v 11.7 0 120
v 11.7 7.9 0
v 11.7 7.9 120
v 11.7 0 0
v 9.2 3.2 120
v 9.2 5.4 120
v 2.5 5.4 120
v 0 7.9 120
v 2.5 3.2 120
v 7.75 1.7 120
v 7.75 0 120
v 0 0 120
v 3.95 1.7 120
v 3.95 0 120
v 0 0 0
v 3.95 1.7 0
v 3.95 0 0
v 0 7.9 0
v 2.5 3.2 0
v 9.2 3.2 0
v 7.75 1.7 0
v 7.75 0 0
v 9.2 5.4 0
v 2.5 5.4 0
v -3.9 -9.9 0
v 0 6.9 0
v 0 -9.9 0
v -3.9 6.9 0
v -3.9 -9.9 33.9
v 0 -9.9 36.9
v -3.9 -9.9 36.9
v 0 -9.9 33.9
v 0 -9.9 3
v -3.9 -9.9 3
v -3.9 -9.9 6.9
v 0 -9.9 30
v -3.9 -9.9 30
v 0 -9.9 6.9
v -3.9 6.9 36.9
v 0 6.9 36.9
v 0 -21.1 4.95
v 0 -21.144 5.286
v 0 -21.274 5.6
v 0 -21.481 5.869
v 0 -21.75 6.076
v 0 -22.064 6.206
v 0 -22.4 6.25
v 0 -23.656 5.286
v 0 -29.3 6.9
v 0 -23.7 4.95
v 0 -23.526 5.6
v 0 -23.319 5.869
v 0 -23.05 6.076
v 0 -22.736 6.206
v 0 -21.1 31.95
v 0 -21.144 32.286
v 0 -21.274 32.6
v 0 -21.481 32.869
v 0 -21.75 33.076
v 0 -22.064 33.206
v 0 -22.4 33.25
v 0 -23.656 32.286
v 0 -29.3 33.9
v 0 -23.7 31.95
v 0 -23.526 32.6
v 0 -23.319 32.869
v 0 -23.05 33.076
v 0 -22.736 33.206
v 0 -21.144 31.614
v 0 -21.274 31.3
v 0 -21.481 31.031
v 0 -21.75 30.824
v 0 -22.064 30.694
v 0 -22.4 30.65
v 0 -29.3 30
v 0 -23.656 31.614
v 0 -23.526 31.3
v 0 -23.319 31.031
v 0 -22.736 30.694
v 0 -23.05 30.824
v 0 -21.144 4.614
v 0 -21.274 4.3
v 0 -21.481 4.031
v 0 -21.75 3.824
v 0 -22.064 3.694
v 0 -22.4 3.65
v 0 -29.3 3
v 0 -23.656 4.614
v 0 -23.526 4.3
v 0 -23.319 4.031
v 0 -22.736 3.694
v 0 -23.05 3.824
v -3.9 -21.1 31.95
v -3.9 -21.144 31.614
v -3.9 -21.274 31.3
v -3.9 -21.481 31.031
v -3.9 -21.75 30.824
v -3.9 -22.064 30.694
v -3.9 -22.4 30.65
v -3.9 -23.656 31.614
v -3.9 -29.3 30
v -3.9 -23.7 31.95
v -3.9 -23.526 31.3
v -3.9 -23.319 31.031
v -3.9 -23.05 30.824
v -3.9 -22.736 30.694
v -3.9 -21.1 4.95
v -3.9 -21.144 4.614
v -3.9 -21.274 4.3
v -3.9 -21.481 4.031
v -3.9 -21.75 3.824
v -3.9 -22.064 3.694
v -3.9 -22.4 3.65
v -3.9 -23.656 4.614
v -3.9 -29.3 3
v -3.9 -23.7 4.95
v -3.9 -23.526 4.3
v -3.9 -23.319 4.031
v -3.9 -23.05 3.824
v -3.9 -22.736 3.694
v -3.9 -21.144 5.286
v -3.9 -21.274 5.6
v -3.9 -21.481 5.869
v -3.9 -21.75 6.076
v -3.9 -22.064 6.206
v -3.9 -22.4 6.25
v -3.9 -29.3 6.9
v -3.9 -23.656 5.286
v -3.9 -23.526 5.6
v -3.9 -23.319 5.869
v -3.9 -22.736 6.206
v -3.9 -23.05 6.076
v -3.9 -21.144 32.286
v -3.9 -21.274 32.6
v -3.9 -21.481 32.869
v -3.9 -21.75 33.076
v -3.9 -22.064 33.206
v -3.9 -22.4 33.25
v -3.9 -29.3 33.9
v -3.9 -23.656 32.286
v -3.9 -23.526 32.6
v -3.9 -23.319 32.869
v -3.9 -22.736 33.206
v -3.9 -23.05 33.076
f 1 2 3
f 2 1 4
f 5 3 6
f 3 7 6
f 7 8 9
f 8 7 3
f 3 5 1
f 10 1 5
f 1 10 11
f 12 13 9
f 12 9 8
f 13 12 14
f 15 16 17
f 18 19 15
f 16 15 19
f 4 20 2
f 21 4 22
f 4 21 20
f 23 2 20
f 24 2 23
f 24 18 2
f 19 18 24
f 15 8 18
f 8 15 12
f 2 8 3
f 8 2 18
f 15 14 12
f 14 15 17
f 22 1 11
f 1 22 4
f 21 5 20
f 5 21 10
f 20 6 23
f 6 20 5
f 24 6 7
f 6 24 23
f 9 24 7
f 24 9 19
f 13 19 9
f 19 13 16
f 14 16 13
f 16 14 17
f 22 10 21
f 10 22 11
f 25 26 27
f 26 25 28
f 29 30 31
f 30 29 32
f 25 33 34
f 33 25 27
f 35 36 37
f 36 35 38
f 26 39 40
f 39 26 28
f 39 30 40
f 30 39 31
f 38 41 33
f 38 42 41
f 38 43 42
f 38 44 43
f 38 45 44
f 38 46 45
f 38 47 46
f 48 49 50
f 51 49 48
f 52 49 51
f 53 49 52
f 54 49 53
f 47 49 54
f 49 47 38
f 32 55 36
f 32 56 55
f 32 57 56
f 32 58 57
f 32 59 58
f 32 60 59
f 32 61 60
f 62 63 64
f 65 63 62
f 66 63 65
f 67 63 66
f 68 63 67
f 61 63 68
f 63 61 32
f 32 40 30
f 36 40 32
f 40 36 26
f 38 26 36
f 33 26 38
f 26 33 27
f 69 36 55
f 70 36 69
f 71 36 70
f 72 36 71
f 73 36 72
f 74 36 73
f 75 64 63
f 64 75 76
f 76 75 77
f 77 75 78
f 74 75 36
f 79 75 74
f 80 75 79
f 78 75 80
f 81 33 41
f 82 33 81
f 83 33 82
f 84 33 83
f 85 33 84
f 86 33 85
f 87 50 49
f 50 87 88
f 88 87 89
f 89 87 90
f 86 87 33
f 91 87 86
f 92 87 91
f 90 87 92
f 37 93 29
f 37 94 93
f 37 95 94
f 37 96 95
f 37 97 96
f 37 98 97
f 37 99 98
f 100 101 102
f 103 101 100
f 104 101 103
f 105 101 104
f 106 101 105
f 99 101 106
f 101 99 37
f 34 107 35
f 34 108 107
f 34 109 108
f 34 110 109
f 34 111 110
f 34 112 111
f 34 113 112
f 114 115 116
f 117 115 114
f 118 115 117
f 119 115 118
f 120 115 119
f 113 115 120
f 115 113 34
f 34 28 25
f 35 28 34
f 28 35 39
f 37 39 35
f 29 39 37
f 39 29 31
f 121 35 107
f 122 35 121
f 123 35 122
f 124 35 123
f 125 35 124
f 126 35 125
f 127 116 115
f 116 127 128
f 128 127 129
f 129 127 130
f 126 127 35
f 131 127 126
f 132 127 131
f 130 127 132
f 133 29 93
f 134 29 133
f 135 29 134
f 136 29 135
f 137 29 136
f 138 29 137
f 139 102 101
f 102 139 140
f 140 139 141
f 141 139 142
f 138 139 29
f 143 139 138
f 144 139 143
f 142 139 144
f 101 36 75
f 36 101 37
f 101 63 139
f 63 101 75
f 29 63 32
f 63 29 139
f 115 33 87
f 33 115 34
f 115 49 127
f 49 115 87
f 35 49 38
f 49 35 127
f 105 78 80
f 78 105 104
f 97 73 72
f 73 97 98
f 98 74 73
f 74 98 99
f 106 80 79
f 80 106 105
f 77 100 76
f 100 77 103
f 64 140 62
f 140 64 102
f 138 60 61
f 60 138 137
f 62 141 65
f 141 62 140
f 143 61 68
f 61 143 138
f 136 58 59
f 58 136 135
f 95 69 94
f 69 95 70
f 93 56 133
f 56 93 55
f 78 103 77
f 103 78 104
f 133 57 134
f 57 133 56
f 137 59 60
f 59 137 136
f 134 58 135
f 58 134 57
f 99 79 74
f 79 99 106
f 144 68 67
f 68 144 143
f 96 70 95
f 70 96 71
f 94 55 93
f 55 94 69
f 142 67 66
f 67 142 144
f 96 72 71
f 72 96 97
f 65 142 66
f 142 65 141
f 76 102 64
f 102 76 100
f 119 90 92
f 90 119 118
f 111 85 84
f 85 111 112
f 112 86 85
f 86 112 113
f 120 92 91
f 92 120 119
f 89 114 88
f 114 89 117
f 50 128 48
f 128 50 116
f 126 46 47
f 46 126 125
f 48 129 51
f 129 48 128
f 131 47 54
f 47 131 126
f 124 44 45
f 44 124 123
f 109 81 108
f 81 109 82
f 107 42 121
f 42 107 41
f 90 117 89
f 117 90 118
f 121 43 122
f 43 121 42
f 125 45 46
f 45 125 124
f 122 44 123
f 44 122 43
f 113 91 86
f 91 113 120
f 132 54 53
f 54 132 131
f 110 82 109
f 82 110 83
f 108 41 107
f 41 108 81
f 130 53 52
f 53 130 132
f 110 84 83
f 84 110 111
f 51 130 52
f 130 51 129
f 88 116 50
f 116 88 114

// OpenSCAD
// Rail + Bracket assemblés - La Boîte à Coucou
//
// Le rail est vertical (Z). Le bracket est fixé sur la face gauche
// du rail (X=0), bras montant en Z, servo s'insérant par le haut.

// ===================================================================
// Paramètres rail (identiques à rail.scad)
// ===================================================================
rb_head_w    = 6.3;
rb_head_h    = 2.0;
rb_taper_h   = 1.5;
rb_stem_w    = 3.4;
rb_stem_h    = 1.5;
rb_cl        = 0.20;

rb_ihead_w   = rb_head_w + 2*rb_cl;
rb_istem_w   = rb_stem_w + 2*rb_cl;
rb_ihead_h   = rb_head_h + rb_cl;
rb_itaper_h  = rb_taper_h;
rb_istem_h   = rb_stem_h + rb_cl;

rb_wall      = 2.5;
rb_rail_h    = 120;

rb_inner_d   = rb_istem_h + rb_itaper_h + rb_ihead_h;
rb_rail_w    = rb_ihead_w + 2*rb_wall;   // ~11.7mm  (axe X)
rb_rail_d    = rb_inner_d + rb_wall;     // ~7.7mm   (axe Y)

// ===================================================================
// Paramètres bracket (identiques à bracket.scad)
// ===================================================================
br_servo_w   = 22.5;
br_body_cl   = 0.3;
br_thick     = 3.9;
br_extra     = 3.0;
br_ext       = 9.0;
br_ear_z     = 16.4;
br_ear_d     = 2.6;

br_inner_w   = br_servo_w + 2*br_body_cl;
br_total_w   = br_inner_w + 2*br_thick + 2*br_extra;  // ~36.9mm

br_fond_z    = br_ext + br_thick;
br_arm_h     = br_ear_z + br_thick + 3.0;
br_total_h   = br_fond_z + br_arm_h;

br_hole_z    = br_fond_z + br_ear_z;

br_lx        = br_extra + br_thick/2;
br_rx        = br_total_w - br_extra - br_thick/2;

// ===================================================================
// Module rail
// ===================================================================
module rail() {
    difference() {
        cube([rb_rail_w, rb_rail_d, rb_rail_h]);
        translate([rb_rail_w/2, 0, -0.1])
        linear_extrude(height = rb_rail_h + 0.2)
        polygon([
            [-rb_istem_w/2, 0],
            [ rb_istem_w/2, 0],
            [ rb_istem_w/2, rb_istem_h],
            [ rb_ihead_w/2, rb_istem_h + rb_itaper_h],
            [ rb_ihead_w/2, rb_istem_h + rb_itaper_h + rb_ihead_h],
            [-rb_ihead_w/2, rb_istem_h + rb_itaper_h + rb_ihead_h],
            [-rb_ihead_w/2, rb_istem_h + rb_itaper_h],
            [-rb_istem_w/2, rb_istem_h],
        ]);
    }
}

// ===================================================================
// Module bracket
// Repère natif : X=largeur (br_total_w), Y=épaisseur fond (br_thick), Z=hauteur
// Face Y=0 = fond (à coller contre le rail)
// Bras montent en Z, fins en X et Y
// ===================================================================
module bracket() {
    difference() {
        union() {
            // Fond : pleine largeur X, fin en Y, hauteur fond_z+thick
            cube([br_total_w, br_thick, br_fond_z + br_thick]);
            // Bras gauche
            translate([br_extra, 0, 0])
            cube([br_thick, br_thick, br_total_h]);
            // Bras droit
            translate([br_total_w - br_extra - br_thick, 0, 0])
            cube([br_thick, br_thick, br_total_h]);
        }
        // Trou oreille gauche (traverse en Y)
        translate([br_lx, -0.1, br_hole_z])
        rotate([-90, 0, 0])
        cylinder(d=br_ear_d, h=br_thick + 0.2, $fn=24);
        // Trou oreille droit
        translate([br_rx, -0.1, br_hole_z])
        rotate([-90, 0, 0])
        cylinder(d=br_ear_d, h=br_thick + 0.2, $fn=24);
    }
}

// ===================================================================
// Assemblage
//
// On veut :
//   - fond du bracket (face Y_nat=0) collé contre X=0 du rail (face gauche)
//   - bras montent en Z (inchangé)
//   - largeur du bracket centrée sur rb_rail_d/2 (profondeur du rail)
//
// rotate([0,0,-90]) : X_nat->-Y_new, Y_nat->X_new, Z_nat->Z_new
//   -> fond (Y_nat=0) -> X_new=0 ✓  (flush contre X=0 du rail)
//   -> largeur (X_nat=0..br_total_w) -> Y_new=0..-br_total_w (vers Y-)
//   -> bras restent en Z ✓
//
// translate Y : ramener de Y- vers Y+ et centrer sur rb_rail_d/2
//   offset_y = rb_rail_d/2 + br_total_w/2
// ===================================================================
union() {
    rail();
    rotate([0, 0, -90])
    rotate([0, 90, 0])
    translate([-br_total_h - 0.7, -br_thick, -rb_rail_d+1])
    bracket();
}
